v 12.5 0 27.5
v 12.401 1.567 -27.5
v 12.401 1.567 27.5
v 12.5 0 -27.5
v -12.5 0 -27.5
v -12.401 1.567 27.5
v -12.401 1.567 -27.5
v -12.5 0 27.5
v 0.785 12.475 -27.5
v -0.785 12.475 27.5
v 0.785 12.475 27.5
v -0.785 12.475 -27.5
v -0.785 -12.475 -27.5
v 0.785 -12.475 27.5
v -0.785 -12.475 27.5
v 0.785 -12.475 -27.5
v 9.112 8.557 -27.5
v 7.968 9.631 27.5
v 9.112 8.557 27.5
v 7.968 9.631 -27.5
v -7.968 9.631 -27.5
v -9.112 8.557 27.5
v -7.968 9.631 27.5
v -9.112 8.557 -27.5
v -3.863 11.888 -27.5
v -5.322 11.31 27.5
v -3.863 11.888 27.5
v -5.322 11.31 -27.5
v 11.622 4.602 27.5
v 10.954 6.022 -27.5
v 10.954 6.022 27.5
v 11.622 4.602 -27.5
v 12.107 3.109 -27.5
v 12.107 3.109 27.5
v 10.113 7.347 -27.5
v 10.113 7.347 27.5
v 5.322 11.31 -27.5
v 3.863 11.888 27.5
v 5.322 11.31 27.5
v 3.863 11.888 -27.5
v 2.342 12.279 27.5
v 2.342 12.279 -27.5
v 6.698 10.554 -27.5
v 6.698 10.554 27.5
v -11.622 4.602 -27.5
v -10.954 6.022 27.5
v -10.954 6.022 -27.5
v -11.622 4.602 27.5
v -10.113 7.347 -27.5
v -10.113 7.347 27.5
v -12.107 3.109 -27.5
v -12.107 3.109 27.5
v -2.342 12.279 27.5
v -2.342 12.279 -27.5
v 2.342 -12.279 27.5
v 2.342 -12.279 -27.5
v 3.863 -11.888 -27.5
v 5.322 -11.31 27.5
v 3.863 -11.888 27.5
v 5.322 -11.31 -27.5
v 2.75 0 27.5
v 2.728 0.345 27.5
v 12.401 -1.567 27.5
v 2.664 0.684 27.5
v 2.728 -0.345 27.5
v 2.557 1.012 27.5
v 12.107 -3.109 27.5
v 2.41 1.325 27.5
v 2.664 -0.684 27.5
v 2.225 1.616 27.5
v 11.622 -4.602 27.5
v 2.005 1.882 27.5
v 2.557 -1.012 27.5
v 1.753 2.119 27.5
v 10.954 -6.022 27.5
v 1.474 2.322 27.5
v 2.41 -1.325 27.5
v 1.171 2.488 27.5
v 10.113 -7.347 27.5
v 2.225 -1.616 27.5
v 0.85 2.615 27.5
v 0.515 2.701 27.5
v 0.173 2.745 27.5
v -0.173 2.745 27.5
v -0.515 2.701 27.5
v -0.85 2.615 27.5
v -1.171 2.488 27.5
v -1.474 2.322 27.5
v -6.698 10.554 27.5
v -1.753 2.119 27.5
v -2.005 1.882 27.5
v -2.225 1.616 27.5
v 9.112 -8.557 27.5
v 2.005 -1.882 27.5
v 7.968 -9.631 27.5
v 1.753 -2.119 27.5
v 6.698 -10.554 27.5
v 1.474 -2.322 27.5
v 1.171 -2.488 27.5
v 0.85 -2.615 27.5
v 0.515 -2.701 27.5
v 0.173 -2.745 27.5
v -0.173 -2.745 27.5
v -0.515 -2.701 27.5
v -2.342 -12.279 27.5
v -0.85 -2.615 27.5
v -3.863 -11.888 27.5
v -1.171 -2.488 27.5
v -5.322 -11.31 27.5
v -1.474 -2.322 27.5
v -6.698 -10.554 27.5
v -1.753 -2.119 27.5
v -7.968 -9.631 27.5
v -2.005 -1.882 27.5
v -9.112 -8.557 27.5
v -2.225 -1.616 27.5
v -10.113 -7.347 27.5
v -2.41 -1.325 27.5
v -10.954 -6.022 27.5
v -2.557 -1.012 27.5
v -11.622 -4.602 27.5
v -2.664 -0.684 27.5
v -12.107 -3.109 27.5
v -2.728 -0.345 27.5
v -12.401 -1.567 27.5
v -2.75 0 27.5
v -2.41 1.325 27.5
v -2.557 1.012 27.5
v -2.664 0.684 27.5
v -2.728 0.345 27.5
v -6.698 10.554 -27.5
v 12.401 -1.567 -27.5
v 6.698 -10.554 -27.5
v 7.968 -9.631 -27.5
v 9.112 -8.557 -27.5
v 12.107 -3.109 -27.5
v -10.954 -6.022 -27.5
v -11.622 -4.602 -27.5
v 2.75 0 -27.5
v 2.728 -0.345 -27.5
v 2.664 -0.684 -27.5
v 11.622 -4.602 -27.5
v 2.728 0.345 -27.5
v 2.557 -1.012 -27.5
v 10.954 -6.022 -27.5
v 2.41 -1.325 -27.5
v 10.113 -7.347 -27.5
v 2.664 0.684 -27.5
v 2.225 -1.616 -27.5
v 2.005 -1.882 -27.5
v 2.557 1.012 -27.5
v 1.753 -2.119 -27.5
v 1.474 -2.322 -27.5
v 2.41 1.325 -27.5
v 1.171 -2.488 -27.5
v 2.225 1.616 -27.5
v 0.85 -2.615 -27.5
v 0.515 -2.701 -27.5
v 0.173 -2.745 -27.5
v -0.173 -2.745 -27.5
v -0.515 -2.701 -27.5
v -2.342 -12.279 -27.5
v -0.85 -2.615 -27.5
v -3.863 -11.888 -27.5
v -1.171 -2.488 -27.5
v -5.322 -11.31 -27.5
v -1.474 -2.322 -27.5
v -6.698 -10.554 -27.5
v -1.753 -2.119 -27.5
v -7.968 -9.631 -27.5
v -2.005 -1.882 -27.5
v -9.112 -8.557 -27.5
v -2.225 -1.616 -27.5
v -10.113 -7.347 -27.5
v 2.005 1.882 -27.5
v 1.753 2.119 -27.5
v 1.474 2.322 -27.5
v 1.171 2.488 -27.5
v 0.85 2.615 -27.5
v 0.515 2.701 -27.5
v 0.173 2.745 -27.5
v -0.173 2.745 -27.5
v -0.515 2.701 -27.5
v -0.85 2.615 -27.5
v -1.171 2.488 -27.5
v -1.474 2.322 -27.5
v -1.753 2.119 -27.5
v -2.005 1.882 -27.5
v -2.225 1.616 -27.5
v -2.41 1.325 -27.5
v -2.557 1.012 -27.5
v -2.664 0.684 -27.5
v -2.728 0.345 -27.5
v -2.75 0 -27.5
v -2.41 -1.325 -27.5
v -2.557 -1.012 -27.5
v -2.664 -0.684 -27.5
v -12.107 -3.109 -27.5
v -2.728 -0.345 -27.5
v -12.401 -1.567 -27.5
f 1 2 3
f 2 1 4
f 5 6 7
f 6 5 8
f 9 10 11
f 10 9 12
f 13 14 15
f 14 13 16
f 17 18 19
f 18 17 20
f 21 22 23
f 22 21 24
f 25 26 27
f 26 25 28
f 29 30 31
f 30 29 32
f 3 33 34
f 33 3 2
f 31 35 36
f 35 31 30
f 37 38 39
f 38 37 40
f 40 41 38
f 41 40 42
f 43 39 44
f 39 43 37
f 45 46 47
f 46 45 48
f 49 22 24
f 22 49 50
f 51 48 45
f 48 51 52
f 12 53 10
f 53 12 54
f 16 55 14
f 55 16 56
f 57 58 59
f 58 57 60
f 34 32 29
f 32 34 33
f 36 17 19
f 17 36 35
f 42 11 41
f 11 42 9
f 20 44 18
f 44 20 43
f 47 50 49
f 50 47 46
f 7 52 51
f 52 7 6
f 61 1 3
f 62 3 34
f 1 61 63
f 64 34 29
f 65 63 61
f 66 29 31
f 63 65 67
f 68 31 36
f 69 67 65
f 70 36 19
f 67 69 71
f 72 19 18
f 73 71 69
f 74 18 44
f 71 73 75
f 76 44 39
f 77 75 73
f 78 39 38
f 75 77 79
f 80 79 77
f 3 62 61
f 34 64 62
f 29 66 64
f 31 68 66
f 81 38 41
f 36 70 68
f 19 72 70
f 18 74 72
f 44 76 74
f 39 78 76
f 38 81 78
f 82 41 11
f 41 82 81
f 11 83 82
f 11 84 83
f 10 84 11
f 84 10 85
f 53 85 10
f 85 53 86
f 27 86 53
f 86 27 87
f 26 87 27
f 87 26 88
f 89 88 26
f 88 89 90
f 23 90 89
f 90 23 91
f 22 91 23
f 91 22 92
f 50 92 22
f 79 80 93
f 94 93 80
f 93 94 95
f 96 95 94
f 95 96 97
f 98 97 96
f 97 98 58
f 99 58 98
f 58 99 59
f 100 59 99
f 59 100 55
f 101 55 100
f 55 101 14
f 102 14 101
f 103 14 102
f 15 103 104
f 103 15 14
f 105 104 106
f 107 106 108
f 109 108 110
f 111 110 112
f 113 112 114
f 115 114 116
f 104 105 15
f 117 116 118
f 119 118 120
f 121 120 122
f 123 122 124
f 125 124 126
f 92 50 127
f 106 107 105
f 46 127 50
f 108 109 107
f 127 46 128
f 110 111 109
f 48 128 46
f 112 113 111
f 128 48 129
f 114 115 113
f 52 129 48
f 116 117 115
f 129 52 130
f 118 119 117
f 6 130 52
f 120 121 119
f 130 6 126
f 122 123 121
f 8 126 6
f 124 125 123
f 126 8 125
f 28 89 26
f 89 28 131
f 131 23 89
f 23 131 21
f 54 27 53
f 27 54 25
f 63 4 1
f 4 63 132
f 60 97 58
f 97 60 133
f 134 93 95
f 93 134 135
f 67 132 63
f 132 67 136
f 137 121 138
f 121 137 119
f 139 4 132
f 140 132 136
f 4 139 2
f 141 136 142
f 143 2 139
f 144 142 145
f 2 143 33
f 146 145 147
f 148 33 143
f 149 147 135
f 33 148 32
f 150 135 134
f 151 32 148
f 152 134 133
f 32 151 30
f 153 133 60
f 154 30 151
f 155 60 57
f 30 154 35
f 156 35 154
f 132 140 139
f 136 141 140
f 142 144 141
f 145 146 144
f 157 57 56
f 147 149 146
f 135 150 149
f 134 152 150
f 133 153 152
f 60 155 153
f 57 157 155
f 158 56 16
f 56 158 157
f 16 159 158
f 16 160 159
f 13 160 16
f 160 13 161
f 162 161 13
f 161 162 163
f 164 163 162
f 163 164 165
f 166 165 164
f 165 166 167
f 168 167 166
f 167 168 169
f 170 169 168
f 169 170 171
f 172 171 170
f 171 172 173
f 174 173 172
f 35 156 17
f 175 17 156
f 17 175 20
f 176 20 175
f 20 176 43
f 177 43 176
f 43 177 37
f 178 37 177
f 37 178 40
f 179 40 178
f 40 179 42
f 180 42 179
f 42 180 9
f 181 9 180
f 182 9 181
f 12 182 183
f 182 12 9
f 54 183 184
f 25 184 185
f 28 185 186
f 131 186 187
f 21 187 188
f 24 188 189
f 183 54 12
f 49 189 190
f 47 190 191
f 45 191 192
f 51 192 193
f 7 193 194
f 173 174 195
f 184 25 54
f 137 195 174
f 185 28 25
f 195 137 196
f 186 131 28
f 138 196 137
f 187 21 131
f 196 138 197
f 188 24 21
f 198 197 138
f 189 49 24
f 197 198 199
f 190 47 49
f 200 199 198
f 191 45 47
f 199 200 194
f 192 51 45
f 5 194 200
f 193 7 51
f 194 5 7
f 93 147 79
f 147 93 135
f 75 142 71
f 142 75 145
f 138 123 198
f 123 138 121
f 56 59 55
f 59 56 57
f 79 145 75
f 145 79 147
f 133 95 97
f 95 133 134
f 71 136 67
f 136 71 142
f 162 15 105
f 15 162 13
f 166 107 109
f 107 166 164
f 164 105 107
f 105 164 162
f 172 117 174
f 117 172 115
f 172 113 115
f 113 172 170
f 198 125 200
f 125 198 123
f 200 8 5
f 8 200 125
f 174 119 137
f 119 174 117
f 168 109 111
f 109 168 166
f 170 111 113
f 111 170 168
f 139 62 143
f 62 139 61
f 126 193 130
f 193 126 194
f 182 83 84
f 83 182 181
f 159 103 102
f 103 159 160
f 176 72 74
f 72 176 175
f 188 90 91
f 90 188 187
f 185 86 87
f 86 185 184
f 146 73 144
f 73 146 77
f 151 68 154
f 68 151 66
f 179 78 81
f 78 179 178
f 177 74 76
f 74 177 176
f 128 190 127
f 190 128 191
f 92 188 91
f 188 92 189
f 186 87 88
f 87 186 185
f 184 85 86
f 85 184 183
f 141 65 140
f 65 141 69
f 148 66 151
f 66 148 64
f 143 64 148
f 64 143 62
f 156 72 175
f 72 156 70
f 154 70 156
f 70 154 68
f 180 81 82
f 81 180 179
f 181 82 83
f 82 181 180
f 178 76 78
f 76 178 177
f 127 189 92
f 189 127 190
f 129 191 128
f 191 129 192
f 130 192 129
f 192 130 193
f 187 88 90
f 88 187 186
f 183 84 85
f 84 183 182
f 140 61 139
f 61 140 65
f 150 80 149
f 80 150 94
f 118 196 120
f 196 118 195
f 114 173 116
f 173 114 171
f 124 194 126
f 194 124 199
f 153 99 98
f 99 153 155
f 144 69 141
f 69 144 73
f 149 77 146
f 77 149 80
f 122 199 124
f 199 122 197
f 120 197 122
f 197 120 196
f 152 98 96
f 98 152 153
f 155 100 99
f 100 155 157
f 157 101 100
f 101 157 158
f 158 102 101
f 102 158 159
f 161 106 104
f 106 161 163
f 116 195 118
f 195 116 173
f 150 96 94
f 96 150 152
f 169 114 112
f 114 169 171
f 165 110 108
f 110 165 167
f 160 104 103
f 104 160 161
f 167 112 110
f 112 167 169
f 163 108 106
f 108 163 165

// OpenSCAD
$fn = 50;


difference() {
	union() {
		translate(v = [0, 0, -27.5000000000]) {
			cylinder(h = 55, r = 12.5000000000);
		}
	}
	union() {
		translate(v = [0, 0, -100.0000000000]) {
			cylinder(h = 200, r = 2.7500000000);
		}
	}
}
